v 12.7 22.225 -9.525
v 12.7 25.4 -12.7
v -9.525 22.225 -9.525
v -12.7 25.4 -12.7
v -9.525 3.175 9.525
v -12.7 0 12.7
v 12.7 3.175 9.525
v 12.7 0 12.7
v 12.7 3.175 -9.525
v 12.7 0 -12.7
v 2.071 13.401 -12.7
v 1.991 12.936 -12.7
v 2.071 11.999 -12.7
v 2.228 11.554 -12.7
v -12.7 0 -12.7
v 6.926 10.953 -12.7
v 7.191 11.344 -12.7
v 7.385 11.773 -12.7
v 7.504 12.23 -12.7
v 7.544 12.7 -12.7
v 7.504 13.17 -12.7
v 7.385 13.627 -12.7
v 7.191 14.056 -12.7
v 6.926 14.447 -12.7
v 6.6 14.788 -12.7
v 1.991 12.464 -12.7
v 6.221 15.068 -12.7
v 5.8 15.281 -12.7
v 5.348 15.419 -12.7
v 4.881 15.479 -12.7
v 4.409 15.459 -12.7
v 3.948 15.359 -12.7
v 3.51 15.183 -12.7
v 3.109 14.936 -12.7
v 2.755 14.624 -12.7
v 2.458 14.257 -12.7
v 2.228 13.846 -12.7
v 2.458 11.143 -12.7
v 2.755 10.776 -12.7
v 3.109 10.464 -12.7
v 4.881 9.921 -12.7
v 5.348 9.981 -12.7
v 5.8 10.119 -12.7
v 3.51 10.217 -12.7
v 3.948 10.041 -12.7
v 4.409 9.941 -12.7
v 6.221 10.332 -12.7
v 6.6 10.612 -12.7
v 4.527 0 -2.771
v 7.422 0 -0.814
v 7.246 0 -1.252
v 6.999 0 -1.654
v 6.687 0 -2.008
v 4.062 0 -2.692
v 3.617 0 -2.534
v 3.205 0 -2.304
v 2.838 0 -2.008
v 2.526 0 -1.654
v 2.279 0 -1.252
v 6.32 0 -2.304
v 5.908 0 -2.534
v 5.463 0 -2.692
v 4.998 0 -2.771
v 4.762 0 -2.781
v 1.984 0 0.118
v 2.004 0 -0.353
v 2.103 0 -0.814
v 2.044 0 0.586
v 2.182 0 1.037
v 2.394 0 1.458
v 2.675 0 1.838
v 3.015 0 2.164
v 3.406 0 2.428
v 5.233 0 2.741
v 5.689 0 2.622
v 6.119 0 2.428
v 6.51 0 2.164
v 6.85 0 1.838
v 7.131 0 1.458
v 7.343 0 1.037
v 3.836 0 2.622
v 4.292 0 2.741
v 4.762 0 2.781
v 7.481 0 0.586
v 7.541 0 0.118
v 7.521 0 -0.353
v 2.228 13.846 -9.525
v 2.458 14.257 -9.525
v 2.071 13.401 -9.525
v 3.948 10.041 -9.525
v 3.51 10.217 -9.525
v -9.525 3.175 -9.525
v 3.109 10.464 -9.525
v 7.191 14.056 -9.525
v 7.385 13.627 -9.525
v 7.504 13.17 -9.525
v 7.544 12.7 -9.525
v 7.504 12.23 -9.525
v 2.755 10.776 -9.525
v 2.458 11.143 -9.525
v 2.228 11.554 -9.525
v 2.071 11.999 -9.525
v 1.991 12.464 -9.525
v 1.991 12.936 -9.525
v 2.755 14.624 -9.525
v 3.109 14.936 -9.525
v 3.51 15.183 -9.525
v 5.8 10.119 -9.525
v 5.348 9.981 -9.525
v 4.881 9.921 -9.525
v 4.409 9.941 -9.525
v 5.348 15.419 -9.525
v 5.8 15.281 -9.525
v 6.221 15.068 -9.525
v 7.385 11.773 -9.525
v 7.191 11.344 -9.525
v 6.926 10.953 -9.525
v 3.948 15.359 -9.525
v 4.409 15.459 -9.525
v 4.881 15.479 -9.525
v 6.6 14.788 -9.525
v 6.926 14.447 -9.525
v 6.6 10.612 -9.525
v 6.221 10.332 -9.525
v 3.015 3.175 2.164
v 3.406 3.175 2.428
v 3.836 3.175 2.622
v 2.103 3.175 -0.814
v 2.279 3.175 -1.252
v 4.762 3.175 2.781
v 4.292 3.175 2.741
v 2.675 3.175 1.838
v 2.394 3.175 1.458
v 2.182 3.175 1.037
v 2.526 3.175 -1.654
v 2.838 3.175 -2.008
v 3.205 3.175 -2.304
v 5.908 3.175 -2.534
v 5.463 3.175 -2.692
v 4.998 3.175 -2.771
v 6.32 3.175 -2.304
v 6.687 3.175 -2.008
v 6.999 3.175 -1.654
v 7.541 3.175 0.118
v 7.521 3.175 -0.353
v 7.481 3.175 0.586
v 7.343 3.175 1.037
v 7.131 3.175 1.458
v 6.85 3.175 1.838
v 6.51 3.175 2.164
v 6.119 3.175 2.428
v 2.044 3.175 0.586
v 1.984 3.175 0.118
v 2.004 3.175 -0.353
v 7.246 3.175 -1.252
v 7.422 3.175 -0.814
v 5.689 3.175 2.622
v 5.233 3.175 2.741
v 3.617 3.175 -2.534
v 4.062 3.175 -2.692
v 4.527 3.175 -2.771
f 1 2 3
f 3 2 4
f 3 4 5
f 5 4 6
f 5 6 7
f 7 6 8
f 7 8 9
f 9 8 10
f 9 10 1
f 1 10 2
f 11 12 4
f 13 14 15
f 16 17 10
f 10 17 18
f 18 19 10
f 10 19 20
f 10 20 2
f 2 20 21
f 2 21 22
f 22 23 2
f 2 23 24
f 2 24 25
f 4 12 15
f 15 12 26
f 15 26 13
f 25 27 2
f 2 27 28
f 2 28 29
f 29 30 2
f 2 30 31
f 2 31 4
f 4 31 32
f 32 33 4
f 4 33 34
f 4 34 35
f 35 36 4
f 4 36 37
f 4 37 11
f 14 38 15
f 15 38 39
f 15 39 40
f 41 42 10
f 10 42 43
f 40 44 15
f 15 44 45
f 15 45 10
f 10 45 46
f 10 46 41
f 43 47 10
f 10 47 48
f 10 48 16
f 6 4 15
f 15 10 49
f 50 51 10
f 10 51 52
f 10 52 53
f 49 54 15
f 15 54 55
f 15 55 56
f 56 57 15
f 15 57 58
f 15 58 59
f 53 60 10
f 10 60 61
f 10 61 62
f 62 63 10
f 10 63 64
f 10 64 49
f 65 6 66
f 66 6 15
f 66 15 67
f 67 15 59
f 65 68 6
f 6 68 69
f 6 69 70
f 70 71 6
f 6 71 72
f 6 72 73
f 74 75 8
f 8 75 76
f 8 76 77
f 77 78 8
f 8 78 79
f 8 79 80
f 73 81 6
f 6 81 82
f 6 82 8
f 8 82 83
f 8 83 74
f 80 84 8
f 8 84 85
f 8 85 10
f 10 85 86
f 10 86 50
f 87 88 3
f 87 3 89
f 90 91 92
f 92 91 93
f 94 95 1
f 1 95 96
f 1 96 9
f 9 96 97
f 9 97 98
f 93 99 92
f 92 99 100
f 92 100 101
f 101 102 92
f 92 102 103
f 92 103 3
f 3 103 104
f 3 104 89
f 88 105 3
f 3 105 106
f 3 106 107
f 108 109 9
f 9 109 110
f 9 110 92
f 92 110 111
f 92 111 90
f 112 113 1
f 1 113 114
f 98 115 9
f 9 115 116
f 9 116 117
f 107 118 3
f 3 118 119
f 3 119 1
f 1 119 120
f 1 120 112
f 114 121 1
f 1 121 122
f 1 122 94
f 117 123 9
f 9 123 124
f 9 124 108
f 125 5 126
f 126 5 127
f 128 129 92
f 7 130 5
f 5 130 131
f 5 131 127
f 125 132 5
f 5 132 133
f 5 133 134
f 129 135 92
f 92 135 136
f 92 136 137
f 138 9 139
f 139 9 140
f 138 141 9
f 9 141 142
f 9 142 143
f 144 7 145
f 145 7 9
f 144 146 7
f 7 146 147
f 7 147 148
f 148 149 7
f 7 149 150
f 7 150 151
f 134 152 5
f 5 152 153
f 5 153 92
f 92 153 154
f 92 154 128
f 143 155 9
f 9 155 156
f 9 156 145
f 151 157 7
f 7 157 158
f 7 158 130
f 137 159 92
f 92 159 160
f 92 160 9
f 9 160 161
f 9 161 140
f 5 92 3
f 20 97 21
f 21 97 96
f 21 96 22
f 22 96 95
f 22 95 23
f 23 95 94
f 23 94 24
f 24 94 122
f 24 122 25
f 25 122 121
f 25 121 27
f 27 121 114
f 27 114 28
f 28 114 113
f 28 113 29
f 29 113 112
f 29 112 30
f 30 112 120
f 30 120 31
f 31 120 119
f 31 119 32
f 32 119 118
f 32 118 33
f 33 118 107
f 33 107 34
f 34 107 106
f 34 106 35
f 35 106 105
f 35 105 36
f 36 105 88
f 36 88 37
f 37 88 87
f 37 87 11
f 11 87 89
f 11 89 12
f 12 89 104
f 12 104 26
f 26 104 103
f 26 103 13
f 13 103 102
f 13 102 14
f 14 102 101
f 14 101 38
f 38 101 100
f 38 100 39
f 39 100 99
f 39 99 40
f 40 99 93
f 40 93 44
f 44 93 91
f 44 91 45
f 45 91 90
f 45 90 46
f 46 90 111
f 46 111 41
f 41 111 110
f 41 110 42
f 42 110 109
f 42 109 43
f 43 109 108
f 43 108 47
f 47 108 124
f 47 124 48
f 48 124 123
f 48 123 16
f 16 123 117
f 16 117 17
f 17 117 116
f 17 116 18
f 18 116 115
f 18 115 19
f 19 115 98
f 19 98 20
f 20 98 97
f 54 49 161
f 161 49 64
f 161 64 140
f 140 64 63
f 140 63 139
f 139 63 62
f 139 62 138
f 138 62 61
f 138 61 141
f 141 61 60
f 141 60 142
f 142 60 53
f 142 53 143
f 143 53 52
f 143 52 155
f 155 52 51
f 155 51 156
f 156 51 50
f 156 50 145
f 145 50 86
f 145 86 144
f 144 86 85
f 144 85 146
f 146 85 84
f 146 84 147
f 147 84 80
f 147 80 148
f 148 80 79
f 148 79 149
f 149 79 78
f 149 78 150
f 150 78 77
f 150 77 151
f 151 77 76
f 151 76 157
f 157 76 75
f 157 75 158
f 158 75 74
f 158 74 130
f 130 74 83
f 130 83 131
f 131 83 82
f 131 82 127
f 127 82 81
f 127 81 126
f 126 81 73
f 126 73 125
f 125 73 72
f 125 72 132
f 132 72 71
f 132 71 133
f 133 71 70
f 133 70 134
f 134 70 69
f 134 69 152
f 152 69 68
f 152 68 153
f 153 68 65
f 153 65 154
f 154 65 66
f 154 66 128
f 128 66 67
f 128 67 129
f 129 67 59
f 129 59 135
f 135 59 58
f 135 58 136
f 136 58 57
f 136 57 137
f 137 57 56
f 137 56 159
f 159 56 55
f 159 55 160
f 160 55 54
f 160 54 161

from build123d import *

# Parameters (mm, degrees)
SKETCH1_W               = 25.4
SKETCH1_H               = 25.4
BOSS_EXTRUDE1_DEPTH     = 25.4
CUT_EXTRUDE1_DEPTH      = 25.4
CUT_EXTRUDE2_DEPTH      = 39.1
CUT_EXTRUDE2_DEPTH_BACK = 22.225
SKETCH4_R               = 2.7813
CUT_EXTRUDE3_DEPTH      = 22.225
SKETCH5_R               = 2.7813
CUT_EXTRUDE4_DEPTH      = 22.225


with BuildPart() as part:
    # Sketch1 → Boss-Extrude1 (new body)
    with BuildSketch(Plane(origin=(0, 0, 0), x_dir=(1, 0, 0), z_dir=(0, 1, 0))):
        Rectangle(SKETCH1_W, SKETCH1_H)
    extrude(amount=BOSS_EXTRUDE1_DEPTH)

    # Sketch2 → Cut-Extrude1 (cut)
    with BuildSketch(Plane(origin=(12.7, 0, 0), x_dir=(0, 0, -1), z_dir=(1, 0, 0))):
        Polygon((-12.7, 25.4), (12.7, 25.4), (-12.7, 0), align=None)
    extrude(amount=-CUT_EXTRUDE1_DEPTH, mode=Mode.SUBTRACT)

    # Sketch3 → Cut-Extrude2 (cut, two sides: drawn at the far end of the back side and taken through both)
    with BuildSketch(Plane(origin=(12.7, 0, 0), x_dir=(0, 0, -1), z_dir=(1, 0, 0)).offset(-CUT_EXTRUDE2_DEPTH_BACK)):
        Polygon((-82.386792847, 3.175), (-9.525, 3.175), (9.525, 3.175), (9.525, 22.225), (9.525, 95.086792847), (-93.517135624, 198.128928471), (-185.428928471, 106.217135624), align=None)
    extrude(amount=CUT_EXTRUDE2_DEPTH + CUT_EXTRUDE2_DEPTH_BACK, mode=Mode.SUBTRACT)

    # Sketch4 → Cut-Extrude3 (cut)
    with BuildSketch(Plane.XY.offset(-9.525)):
        with Locations((4.7625, 12.7)):
            Circle(SKETCH4_R)
    extrude(amount=-CUT_EXTRUDE3_DEPTH, mode=Mode.SUBTRACT)

    # Sketch5 → Cut-Extrude4 (cut)
    with BuildSketch(Plane(origin=(0, 3.175, 0), x_dir=(1, 0, 0), z_dir=(0, 1, 0))):
        with Locations(Location((4.7625, 0, 0), (0, 0, 270))):
            Circle(SKETCH5_R)
    extrude(amount=-CUT_EXTRUDE4_DEPTH, mode=Mode.SUBTRACT)


solid = part.part
